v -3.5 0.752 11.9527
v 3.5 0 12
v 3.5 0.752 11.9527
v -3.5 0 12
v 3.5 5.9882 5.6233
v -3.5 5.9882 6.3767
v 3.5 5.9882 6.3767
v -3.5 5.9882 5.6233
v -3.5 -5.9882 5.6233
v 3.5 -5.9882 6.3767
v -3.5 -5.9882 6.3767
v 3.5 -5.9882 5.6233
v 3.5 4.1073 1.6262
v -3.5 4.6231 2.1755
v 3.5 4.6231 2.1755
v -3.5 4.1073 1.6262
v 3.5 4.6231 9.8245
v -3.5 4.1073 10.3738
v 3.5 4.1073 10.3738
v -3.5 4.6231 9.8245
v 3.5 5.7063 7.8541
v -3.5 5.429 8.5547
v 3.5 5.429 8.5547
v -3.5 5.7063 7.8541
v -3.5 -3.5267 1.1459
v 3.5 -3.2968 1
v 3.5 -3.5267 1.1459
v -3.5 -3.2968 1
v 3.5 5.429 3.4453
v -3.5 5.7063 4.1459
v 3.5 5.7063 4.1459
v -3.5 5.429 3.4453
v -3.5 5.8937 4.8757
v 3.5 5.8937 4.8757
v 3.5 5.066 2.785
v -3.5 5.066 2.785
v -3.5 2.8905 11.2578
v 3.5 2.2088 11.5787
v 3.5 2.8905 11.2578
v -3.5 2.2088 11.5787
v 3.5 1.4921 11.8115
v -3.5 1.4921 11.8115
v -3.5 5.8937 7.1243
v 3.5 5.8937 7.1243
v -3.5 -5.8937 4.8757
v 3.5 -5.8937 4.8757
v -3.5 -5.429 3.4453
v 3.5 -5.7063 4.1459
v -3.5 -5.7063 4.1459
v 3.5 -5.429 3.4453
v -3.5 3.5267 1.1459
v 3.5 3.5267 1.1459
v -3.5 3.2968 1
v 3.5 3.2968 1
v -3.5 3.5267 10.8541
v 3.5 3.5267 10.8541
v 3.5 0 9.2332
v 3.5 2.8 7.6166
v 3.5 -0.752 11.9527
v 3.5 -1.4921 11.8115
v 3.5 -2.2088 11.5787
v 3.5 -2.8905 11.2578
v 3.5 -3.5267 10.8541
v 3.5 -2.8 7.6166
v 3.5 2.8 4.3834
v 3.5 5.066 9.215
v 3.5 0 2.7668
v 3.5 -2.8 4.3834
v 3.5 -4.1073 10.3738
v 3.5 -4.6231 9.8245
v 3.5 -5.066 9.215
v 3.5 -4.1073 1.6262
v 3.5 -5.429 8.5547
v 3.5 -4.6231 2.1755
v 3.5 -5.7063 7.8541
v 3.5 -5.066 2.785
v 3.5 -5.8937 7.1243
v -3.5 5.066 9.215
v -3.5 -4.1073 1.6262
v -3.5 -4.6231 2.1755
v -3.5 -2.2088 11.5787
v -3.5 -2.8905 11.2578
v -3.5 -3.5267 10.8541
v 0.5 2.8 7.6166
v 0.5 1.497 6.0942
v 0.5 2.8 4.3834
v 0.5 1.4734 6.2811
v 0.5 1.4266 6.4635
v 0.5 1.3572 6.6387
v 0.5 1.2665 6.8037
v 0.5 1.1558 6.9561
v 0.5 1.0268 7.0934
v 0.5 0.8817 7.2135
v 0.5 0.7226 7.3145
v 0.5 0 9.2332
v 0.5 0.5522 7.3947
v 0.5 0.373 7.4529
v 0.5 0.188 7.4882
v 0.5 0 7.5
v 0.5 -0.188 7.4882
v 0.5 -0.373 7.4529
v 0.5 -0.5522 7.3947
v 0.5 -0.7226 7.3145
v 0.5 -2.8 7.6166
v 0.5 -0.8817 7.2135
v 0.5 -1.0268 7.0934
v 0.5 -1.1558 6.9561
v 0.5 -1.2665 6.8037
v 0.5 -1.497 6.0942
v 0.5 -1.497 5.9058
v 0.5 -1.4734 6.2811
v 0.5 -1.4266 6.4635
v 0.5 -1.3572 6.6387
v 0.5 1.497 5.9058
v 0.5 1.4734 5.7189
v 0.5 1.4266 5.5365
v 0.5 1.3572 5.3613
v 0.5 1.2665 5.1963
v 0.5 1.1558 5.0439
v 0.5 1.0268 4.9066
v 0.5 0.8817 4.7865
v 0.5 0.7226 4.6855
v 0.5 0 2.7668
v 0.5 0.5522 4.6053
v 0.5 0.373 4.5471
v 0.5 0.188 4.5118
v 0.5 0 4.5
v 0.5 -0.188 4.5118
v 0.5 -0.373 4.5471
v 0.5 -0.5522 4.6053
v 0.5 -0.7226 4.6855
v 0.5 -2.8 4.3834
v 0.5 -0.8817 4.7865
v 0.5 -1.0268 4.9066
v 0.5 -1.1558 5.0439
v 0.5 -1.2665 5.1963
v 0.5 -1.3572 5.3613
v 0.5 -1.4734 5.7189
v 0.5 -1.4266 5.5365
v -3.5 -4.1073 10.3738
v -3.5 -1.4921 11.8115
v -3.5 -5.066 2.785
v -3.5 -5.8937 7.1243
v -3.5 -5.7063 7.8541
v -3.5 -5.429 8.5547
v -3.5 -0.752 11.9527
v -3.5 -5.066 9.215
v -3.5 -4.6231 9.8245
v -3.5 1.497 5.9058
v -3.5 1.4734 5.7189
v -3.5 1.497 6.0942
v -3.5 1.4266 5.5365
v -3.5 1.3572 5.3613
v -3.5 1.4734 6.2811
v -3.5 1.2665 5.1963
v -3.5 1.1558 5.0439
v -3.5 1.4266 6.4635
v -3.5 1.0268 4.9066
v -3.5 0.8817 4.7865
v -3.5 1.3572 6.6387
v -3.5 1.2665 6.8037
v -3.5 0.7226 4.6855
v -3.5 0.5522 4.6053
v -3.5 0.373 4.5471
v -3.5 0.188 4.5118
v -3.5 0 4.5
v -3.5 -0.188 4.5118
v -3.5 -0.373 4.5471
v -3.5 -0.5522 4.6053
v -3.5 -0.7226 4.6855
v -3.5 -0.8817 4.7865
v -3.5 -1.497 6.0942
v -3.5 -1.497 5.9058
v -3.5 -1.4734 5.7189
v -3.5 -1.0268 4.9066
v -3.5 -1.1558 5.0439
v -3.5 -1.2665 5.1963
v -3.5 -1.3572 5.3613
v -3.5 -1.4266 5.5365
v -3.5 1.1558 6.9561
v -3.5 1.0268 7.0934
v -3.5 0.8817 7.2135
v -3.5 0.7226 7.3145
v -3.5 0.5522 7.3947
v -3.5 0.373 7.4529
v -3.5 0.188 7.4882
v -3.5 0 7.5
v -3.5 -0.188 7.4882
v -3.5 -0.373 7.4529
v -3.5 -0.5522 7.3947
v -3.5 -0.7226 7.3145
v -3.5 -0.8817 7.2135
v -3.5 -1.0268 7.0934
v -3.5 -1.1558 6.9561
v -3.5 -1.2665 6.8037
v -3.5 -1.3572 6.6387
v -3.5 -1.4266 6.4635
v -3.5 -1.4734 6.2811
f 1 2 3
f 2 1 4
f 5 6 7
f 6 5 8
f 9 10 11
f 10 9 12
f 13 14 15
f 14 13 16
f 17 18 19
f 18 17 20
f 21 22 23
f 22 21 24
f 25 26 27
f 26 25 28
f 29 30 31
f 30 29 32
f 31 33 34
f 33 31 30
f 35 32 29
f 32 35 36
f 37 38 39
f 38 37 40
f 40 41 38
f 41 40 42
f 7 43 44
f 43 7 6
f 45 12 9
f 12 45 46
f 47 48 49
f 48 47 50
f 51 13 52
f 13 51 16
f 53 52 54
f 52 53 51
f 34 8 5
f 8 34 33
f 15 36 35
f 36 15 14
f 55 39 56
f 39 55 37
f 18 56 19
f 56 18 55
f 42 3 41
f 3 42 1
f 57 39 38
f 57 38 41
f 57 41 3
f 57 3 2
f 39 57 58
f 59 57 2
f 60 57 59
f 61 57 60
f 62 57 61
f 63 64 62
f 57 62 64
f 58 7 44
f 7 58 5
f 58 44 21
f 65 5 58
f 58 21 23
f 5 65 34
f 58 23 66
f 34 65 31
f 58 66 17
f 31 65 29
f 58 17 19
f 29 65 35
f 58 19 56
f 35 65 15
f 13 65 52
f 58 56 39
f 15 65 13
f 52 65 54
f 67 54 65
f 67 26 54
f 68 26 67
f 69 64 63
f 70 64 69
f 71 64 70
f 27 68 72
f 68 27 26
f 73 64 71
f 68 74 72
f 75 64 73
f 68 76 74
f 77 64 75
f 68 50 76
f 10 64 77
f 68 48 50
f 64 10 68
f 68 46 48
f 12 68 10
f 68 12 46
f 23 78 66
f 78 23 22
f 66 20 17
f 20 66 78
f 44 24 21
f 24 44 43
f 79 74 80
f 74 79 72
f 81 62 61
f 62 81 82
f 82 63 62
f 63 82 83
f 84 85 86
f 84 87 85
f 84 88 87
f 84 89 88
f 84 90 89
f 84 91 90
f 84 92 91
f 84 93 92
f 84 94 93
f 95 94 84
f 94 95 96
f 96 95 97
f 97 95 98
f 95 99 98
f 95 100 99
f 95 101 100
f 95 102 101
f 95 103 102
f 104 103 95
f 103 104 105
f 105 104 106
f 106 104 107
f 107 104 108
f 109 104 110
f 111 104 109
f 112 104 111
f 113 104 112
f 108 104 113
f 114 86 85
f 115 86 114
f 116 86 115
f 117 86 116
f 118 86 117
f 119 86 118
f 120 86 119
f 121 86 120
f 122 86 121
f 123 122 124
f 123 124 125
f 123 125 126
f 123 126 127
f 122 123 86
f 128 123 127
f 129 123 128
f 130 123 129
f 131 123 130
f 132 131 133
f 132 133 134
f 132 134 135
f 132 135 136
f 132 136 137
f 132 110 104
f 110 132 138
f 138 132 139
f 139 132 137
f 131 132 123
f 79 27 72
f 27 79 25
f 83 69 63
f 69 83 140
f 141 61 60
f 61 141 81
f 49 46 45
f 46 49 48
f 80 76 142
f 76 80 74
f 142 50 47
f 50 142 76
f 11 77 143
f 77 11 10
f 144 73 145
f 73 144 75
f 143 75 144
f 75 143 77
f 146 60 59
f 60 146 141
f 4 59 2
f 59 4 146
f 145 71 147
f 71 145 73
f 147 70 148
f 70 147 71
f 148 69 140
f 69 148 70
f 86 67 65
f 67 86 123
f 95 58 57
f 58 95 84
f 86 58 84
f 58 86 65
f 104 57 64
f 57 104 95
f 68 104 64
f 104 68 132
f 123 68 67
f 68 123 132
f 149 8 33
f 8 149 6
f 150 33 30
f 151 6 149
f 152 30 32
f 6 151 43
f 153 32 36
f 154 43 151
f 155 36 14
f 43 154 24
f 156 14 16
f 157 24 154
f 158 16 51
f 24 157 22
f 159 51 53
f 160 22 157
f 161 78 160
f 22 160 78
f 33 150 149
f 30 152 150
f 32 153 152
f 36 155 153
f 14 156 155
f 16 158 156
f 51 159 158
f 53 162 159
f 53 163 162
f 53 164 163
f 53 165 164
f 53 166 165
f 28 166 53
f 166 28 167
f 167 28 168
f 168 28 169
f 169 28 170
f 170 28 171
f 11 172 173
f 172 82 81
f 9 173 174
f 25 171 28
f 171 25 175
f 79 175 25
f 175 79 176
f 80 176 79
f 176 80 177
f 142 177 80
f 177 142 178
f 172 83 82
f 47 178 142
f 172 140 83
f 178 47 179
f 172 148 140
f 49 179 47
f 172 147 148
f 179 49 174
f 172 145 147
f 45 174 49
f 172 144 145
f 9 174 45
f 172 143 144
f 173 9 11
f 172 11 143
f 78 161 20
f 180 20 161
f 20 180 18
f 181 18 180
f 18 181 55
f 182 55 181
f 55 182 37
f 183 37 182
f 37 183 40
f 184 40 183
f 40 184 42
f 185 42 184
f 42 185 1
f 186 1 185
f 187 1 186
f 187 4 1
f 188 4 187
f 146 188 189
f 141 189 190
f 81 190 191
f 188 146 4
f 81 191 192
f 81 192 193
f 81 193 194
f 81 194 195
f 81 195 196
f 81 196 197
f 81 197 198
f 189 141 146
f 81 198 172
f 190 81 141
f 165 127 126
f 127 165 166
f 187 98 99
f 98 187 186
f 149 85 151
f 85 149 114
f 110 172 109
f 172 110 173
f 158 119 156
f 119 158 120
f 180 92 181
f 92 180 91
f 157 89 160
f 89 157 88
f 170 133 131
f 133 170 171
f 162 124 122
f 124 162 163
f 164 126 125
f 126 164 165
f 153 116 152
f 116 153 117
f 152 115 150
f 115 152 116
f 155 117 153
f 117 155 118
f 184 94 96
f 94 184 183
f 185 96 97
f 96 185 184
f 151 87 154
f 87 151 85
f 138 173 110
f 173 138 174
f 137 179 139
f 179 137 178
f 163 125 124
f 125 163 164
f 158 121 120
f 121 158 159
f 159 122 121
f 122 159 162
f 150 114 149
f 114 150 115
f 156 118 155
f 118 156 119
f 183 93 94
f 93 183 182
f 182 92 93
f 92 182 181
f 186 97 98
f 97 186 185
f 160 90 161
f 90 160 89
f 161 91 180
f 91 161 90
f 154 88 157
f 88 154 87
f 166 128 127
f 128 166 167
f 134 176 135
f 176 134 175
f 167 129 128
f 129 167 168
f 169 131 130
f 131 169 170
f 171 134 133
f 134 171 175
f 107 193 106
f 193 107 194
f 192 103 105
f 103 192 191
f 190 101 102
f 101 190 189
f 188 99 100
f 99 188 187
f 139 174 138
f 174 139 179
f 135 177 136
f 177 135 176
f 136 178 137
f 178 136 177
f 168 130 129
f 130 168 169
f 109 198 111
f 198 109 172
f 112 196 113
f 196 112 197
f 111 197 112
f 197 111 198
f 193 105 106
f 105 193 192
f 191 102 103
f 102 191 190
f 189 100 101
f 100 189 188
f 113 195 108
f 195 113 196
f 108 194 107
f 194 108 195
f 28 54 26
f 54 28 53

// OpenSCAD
nutOuterDiameter = 12;
m3NutDiameter = 5.6;
m3NutHeight = 3;
m3BoltShaftDiameter = 3;
m3ShaftHeight = 4;

$fn=50;

module nut_cutout() {
    difference() {
        cylinder(d=nutOuterDiameter,h=m3NutHeight);
        cylinder(d=m3NutDiameter*2/sqrt(3),h=1.1*m3NutHeight,$fn=6);
    }
}

module bolt_shaft() {
    difference() {
        cylinder(d=nutOuterDiameter,h=m3ShaftHeight);
        cylinder(d=m3BoltShaftDiameter,h=1.1*m3ShaftHeight);
    }
}

difference() {
    union() {
        height = m3NutHeight+m3ShaftHeight;
        translate([height/2-m3NutHeight,0,6]) rotate([0,90,0]) nut_cutout();
        translate([-height/2,0,6]) rotate([0,90,0]) bolt_shaft();
    }
    translate([-nutOuterDiameter,-nutOuterDiameter,-4])
        cube([2*nutOuterDiameter,2*nutOuterDiameter,5]);
}
